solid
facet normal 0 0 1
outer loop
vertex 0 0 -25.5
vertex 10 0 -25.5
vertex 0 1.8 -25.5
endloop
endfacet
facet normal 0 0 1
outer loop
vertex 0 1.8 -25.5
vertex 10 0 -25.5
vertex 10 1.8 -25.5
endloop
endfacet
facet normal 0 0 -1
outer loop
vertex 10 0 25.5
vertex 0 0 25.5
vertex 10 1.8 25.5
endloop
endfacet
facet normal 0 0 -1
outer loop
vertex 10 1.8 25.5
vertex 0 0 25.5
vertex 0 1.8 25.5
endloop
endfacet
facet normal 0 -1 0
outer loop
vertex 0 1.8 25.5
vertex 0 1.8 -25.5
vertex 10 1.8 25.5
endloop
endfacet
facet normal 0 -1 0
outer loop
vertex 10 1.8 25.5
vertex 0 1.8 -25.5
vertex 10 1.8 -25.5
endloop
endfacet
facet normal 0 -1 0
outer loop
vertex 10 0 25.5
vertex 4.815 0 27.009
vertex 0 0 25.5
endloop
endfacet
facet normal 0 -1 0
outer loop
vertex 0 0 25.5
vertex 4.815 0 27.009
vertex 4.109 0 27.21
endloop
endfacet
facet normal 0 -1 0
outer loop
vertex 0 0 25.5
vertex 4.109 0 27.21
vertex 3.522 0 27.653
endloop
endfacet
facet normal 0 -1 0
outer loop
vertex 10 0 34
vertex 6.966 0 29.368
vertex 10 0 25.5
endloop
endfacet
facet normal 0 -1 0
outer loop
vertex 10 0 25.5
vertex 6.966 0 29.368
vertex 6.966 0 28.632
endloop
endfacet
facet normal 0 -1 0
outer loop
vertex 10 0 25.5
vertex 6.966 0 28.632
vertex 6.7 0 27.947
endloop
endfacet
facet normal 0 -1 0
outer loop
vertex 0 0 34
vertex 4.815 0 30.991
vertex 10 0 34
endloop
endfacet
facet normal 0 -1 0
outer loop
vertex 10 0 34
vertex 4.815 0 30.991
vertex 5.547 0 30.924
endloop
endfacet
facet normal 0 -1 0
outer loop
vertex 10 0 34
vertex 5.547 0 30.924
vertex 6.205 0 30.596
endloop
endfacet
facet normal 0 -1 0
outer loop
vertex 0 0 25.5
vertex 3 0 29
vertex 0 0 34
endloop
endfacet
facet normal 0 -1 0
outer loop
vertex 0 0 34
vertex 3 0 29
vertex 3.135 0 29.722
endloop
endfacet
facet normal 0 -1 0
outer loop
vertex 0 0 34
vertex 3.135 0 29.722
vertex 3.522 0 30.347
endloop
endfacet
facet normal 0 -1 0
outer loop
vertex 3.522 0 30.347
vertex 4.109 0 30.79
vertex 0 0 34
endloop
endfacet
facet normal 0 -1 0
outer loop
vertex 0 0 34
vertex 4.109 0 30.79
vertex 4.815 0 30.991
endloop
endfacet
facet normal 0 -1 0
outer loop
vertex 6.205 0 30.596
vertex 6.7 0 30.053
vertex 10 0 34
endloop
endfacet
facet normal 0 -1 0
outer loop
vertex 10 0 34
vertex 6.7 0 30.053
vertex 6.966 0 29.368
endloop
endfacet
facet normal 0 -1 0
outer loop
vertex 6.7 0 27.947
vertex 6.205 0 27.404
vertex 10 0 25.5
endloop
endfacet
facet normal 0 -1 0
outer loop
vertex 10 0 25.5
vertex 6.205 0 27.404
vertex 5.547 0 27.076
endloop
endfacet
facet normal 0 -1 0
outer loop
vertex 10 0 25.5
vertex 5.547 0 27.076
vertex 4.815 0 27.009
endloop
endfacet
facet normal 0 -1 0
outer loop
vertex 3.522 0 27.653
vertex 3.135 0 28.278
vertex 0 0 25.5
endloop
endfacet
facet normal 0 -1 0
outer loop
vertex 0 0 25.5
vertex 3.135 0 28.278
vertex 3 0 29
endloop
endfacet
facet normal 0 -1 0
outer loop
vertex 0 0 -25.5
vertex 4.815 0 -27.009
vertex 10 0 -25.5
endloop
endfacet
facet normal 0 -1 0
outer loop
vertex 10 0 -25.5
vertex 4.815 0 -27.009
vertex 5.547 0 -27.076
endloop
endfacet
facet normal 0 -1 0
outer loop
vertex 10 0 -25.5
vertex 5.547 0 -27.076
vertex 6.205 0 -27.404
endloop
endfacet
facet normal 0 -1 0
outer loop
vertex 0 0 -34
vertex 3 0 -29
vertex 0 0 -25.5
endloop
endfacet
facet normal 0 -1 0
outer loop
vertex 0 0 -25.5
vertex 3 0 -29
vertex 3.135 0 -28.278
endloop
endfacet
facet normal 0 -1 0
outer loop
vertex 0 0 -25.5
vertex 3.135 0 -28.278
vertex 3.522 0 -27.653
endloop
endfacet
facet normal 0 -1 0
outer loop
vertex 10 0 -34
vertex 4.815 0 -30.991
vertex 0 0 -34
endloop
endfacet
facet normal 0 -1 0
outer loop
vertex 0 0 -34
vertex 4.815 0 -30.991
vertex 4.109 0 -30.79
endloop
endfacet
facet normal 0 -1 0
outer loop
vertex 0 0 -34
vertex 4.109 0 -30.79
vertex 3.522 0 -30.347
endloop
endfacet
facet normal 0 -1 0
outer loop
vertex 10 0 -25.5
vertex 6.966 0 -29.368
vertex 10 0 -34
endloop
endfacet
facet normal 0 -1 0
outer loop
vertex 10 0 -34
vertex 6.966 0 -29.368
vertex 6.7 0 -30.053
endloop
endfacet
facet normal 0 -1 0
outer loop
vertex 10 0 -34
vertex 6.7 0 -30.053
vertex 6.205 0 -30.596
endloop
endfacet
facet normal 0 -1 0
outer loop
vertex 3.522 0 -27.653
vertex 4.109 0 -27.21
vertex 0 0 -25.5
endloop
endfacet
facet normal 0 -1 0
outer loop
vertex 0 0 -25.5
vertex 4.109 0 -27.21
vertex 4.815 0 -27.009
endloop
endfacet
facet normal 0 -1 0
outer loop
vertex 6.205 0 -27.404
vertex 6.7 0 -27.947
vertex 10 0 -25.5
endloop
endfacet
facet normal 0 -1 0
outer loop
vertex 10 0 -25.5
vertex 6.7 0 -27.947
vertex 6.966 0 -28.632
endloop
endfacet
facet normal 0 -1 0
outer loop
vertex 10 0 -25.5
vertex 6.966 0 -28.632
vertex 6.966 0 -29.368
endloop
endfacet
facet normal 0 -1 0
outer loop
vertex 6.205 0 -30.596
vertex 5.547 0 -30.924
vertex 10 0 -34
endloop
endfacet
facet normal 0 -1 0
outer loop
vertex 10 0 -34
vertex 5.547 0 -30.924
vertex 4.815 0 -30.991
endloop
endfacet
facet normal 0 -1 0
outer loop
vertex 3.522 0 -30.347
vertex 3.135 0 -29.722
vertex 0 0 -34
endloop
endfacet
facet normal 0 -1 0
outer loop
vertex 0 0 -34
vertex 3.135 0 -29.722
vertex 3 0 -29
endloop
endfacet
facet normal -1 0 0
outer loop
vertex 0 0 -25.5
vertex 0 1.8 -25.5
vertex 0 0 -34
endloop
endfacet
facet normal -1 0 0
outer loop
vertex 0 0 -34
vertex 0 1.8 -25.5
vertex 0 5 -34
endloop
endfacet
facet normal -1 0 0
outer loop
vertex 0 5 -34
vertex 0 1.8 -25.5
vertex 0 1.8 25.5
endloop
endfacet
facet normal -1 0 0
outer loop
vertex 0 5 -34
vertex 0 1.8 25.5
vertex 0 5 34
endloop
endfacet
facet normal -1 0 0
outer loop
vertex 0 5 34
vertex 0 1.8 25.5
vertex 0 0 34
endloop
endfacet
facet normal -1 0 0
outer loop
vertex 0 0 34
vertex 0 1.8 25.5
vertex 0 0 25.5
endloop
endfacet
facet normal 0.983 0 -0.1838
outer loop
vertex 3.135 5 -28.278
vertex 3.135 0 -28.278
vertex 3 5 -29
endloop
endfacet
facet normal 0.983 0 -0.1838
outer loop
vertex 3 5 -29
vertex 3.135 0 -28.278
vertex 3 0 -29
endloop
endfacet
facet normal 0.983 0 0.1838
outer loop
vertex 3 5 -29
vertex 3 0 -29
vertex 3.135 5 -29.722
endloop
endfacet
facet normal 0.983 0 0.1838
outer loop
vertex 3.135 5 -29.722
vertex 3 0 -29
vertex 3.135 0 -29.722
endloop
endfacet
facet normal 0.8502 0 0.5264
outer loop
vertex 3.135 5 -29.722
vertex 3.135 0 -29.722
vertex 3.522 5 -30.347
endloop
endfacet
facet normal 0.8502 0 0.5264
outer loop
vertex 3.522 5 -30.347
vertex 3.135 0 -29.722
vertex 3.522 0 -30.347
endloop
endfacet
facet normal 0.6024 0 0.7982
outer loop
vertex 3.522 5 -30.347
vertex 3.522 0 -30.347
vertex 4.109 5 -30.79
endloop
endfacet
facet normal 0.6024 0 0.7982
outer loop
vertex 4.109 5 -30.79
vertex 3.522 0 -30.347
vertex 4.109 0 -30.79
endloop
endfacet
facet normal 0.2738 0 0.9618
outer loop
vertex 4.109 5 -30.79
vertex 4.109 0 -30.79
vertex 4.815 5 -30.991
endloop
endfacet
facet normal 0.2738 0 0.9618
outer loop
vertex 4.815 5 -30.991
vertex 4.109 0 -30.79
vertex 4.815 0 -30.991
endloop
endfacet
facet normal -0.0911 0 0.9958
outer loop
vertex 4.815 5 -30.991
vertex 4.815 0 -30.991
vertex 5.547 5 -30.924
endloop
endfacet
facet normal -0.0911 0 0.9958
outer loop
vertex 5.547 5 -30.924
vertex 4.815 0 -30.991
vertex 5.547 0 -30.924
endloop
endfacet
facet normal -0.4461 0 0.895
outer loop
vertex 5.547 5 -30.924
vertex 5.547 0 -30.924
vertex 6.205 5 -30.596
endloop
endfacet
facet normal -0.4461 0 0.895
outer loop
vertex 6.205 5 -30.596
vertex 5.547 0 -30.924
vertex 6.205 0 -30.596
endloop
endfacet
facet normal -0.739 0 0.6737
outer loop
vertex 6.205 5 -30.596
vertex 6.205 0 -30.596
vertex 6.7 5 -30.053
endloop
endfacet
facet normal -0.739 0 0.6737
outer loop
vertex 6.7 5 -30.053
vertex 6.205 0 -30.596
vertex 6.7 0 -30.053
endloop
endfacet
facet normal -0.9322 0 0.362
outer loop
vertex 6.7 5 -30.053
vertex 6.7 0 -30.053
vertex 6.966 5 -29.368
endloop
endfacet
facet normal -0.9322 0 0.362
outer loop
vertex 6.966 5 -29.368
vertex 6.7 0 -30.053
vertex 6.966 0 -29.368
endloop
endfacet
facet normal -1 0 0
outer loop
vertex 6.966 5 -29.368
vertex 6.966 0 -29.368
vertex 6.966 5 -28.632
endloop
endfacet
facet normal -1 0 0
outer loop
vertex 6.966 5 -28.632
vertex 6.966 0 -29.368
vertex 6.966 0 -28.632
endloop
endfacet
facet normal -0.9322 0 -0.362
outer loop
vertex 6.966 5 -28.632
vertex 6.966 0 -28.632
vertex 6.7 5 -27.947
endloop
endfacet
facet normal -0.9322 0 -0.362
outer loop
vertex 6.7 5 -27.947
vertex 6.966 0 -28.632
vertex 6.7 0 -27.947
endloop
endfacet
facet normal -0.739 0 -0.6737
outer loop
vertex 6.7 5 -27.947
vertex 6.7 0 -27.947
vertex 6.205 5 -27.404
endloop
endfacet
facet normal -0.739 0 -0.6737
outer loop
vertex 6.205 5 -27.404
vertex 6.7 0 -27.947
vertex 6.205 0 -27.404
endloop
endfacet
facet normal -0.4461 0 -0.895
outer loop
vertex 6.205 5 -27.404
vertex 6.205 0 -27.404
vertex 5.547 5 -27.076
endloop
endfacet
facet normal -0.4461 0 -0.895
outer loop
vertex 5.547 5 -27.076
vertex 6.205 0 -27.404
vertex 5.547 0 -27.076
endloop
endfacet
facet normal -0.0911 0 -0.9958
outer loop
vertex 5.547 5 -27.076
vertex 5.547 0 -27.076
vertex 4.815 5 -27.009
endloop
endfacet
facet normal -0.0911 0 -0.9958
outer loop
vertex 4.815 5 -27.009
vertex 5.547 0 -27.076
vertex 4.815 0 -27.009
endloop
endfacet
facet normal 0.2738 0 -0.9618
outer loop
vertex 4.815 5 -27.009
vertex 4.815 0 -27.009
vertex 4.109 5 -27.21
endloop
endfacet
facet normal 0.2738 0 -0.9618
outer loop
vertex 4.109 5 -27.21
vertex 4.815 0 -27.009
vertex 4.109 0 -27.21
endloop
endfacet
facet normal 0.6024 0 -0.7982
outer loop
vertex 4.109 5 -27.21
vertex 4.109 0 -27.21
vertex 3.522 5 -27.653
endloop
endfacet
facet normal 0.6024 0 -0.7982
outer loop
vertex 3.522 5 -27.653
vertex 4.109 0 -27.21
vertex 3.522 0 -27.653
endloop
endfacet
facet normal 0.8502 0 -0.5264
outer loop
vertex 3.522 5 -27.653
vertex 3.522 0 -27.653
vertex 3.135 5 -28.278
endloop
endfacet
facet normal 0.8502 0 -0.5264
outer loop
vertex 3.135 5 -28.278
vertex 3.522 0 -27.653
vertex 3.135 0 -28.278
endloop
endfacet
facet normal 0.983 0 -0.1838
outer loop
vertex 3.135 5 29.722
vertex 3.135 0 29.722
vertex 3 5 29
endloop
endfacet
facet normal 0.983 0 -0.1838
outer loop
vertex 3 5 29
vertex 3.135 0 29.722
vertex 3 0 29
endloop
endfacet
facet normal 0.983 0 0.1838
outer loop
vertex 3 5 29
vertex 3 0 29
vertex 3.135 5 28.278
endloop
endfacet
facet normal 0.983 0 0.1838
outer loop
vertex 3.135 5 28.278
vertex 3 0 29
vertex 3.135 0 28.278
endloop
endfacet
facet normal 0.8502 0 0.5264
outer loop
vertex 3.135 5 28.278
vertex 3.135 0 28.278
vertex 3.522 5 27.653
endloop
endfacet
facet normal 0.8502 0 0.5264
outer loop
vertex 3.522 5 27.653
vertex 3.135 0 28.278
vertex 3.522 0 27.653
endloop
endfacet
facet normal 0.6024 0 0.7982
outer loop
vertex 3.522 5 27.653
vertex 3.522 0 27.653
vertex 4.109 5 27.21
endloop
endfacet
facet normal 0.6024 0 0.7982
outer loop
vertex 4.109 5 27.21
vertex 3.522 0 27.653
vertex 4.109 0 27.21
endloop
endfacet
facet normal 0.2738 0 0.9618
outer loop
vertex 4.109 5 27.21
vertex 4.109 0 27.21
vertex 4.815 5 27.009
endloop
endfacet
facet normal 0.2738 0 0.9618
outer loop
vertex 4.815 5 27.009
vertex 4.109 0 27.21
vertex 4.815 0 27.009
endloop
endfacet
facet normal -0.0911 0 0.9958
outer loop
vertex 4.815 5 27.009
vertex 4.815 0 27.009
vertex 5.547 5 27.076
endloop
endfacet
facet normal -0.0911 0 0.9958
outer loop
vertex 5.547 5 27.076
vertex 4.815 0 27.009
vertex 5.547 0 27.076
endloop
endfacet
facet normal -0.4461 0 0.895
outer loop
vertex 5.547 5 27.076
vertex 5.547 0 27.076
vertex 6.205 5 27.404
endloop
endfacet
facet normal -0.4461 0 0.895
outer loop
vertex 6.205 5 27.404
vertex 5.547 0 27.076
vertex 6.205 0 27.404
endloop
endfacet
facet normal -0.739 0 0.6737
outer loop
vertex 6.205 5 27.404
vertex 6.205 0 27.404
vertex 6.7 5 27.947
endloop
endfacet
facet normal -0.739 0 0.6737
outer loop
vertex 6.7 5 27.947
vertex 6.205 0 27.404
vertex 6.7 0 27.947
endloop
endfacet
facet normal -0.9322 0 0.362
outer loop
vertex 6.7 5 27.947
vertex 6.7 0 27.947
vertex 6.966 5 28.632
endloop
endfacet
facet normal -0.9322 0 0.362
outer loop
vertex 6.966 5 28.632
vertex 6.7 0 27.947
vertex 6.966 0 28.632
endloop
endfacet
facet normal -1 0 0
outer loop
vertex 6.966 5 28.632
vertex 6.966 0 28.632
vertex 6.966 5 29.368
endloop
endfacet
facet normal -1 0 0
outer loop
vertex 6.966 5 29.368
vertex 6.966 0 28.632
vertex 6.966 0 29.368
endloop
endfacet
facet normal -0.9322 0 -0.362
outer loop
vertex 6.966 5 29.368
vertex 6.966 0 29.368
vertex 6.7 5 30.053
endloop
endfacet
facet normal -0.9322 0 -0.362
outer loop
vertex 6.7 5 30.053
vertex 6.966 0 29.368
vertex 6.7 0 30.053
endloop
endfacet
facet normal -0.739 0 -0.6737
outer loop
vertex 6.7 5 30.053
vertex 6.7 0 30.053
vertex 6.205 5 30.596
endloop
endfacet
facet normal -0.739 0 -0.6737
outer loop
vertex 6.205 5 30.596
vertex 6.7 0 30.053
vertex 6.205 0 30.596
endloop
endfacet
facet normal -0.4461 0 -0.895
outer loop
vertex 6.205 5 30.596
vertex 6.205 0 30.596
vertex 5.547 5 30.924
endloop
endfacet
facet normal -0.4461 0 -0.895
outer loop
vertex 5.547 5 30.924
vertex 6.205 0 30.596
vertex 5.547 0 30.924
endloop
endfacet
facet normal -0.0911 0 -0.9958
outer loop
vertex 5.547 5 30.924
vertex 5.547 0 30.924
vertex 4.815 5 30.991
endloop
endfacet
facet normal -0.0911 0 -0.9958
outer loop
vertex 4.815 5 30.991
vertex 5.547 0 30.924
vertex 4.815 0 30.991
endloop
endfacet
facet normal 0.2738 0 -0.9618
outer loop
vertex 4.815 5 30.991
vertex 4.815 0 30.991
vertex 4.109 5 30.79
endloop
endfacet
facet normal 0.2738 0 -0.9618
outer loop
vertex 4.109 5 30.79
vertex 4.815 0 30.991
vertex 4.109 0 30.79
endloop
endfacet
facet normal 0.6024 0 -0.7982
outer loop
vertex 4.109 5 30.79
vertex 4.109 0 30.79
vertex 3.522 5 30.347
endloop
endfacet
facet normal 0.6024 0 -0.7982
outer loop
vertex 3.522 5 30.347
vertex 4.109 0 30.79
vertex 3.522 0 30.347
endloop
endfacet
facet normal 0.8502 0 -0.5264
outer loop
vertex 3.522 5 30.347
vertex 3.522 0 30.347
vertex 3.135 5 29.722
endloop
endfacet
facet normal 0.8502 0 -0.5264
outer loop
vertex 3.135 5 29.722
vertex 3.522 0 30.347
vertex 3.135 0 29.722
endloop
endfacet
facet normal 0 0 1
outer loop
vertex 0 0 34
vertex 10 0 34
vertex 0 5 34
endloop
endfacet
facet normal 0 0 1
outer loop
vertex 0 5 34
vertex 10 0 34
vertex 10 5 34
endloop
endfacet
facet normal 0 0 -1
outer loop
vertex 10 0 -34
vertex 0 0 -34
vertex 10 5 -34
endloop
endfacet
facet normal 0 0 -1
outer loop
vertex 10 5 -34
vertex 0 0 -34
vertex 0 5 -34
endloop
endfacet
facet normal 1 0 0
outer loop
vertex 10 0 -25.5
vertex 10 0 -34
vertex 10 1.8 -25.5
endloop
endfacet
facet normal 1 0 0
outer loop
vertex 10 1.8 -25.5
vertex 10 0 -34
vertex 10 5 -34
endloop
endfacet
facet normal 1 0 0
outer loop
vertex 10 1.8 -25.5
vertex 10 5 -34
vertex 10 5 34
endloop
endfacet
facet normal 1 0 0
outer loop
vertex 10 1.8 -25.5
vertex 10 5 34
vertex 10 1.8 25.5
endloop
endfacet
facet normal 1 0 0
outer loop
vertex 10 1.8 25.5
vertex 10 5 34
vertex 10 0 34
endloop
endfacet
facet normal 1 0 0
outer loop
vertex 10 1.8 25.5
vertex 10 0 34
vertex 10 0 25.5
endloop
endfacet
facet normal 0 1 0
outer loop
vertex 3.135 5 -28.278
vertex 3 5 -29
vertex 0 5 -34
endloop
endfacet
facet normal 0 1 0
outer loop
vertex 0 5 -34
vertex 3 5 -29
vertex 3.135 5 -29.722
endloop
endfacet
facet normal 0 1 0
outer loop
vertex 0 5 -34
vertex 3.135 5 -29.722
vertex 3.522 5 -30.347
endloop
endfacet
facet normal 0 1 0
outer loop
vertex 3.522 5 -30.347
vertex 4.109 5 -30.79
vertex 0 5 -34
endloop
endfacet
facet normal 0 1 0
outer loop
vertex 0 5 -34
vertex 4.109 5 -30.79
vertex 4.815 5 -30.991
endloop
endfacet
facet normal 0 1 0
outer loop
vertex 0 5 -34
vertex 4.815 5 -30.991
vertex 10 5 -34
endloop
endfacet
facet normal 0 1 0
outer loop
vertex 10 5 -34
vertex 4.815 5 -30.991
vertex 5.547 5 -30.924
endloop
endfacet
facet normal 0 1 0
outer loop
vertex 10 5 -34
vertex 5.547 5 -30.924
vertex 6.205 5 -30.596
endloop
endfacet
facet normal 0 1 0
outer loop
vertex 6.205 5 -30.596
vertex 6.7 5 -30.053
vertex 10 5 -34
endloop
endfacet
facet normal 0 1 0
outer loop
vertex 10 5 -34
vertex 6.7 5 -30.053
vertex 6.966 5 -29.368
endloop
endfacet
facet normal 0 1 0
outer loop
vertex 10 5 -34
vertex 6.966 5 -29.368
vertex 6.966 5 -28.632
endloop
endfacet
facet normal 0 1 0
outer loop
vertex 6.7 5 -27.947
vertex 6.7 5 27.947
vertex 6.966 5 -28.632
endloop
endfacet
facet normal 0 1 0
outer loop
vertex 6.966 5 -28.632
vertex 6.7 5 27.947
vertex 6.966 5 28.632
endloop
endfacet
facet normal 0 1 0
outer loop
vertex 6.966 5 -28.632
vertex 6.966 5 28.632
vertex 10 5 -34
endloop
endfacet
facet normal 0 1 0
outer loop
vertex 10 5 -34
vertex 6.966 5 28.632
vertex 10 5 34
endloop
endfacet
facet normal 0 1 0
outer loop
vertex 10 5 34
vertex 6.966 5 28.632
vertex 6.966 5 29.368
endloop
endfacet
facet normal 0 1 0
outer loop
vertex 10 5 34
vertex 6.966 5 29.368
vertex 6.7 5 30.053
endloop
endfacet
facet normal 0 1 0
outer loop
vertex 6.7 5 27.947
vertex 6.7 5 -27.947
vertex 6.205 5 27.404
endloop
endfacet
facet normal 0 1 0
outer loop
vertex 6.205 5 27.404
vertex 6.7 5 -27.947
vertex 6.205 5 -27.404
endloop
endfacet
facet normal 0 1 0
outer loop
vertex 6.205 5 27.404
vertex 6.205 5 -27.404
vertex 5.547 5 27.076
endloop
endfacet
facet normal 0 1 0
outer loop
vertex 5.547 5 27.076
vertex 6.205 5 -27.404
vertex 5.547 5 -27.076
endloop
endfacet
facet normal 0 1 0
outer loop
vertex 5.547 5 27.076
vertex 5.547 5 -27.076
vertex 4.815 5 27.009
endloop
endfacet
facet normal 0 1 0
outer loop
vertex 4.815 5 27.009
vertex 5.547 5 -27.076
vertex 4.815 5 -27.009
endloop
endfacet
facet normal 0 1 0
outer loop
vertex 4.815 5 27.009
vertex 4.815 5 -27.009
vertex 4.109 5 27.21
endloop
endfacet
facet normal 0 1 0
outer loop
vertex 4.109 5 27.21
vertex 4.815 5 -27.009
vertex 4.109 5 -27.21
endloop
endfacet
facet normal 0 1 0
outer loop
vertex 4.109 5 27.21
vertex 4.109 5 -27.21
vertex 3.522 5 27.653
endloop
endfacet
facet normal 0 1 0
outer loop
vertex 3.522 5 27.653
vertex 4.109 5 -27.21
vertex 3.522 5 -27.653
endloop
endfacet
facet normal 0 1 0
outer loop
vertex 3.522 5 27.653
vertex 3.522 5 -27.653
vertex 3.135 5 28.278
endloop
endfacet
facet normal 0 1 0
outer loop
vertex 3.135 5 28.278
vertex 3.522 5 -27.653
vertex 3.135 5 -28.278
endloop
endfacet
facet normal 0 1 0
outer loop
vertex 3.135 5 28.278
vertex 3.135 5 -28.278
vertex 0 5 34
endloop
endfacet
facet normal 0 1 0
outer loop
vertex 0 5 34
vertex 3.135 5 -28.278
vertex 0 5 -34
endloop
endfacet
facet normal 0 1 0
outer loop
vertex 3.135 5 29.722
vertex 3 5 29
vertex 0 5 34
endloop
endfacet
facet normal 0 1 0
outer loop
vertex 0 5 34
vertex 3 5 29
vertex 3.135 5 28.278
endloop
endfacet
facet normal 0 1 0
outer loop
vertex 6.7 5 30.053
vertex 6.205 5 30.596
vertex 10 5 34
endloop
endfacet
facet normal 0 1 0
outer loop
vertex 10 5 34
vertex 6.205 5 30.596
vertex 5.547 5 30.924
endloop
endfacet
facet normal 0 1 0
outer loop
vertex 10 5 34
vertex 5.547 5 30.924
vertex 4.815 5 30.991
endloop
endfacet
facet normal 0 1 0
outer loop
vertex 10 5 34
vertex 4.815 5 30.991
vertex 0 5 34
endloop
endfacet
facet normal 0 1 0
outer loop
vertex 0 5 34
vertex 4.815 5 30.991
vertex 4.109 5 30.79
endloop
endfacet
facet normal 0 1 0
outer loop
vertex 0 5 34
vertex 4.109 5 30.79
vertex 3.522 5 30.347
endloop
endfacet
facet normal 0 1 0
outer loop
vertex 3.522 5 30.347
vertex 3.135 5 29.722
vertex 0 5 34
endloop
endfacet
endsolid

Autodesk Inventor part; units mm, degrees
ref_plane "YZ Plane" through (0, 0, 0) normal (1, 0, 0) x (0, 1, 0)
ref_plane "XZ Plane" through (0, 0, 0) normal (0, 1, 0) x (-1, 0, 0)
ref_plane "XY Plane" through (0, 0, 0) normal (0, 0, 1) x (1, 0, 0)
sketch "Эскиз1" plane through (0, 0, 0) normal (0, 1, 0) x (-1, 0, 0)
  line L0 (-8, -25.5) -> (-10, -25.5)
  line L1 (-10, -34) -> (-10, -25.5)
  line L2 (0, -34) -> (-10, -34)
  line L3 (0, -34) -> (0, -25.5)
  line L4 (0, -25.5) -> (-2, -25.5)
  line L5 (-2, -25.5) -> (-2, 25.5)
  line L6 (-2, 25.5) -> (0, 25.5)
  line L7 (0, 25.5) -> (0, 34)
  line L8 (0, 34) -> (-10, 34)
  line L9 (-10, 25.5) -> (-10, 34)
  line L10 (-10, 25.5) -> (-8, 25.5)
  line L11 (-8, 25.5) -> (-8, -25.5)
  line L12 (-4, 25.5) -> (-4, -25.5)
  line L13 (-4, -25.5) -> (-6, -25.5)
  line L14 (-6, -25.5) -> (-6, 25.5)
  line L15 (-6, 25.5) -> (-4, 25.5)
  circle A0 centre (-5, 29) radius 2
  circle A1 centre (-5, -29) radius 2
  line L16 (-10, 25.5) -> (-10, -25.5)
  line L17 (-10, -25.5) -> (-8, -25.5)
  line L18 (-8, -25.5) -> (-8, 25.5)
  line L19 (-8, 25.5) -> (-10, 25.5)
  line L20 (0, 25.5) -> (-2, 25.5)
  line L21 (-2, 25.5) -> (-2, -25.5)
  line L22 (-2, -25.5) -> (0, -25.5)
  line L23 (0, -25.5) -> (0, 25.5)
  point P0 (0, 0)
  point P1 (0, 0)
extrude "Выдавливание1" add sketch "Эскиз1" along normal blind 5 contours L11 L10 L9 L8 L7 L6 L5 L4 L3 L2 L1 L0 | L0 L16 L10 L11 | L4 L5 L6 L23 | L12 L13 L14 L15
sketch "Эскиз2" plane through (0, 0, 0) normal (0, -1, 0) x (1, 0, 0)
  line L0 (10, 34) -> (10, -34) projected
  line L1 (10, 0) -> (0, 0)
  line L2 (0, -34) -> (0, 34) projected
  line L3 (0, 25.5) -> (10, 25.5)
  line L4 (10, 25.5) -> (10, -25.5)
  line L5 (10, -25.5) -> (0, -25.5)
  line L6 (0, -25.5) -> (0, 25.5)
  line L7 (0, 25.5) -> (10, -25.5) construction
  line L8 (10, 25.5) -> (0, -25.5) construction
  point P0 (5, 0)
  dimension "d2" = 51
extrude "Выдавливание2" cut sketch "Эскиз2" against normal blind 1.8
properties part number "КВ33.044.305 - Прижим ремня" material "Пластик АБС"
